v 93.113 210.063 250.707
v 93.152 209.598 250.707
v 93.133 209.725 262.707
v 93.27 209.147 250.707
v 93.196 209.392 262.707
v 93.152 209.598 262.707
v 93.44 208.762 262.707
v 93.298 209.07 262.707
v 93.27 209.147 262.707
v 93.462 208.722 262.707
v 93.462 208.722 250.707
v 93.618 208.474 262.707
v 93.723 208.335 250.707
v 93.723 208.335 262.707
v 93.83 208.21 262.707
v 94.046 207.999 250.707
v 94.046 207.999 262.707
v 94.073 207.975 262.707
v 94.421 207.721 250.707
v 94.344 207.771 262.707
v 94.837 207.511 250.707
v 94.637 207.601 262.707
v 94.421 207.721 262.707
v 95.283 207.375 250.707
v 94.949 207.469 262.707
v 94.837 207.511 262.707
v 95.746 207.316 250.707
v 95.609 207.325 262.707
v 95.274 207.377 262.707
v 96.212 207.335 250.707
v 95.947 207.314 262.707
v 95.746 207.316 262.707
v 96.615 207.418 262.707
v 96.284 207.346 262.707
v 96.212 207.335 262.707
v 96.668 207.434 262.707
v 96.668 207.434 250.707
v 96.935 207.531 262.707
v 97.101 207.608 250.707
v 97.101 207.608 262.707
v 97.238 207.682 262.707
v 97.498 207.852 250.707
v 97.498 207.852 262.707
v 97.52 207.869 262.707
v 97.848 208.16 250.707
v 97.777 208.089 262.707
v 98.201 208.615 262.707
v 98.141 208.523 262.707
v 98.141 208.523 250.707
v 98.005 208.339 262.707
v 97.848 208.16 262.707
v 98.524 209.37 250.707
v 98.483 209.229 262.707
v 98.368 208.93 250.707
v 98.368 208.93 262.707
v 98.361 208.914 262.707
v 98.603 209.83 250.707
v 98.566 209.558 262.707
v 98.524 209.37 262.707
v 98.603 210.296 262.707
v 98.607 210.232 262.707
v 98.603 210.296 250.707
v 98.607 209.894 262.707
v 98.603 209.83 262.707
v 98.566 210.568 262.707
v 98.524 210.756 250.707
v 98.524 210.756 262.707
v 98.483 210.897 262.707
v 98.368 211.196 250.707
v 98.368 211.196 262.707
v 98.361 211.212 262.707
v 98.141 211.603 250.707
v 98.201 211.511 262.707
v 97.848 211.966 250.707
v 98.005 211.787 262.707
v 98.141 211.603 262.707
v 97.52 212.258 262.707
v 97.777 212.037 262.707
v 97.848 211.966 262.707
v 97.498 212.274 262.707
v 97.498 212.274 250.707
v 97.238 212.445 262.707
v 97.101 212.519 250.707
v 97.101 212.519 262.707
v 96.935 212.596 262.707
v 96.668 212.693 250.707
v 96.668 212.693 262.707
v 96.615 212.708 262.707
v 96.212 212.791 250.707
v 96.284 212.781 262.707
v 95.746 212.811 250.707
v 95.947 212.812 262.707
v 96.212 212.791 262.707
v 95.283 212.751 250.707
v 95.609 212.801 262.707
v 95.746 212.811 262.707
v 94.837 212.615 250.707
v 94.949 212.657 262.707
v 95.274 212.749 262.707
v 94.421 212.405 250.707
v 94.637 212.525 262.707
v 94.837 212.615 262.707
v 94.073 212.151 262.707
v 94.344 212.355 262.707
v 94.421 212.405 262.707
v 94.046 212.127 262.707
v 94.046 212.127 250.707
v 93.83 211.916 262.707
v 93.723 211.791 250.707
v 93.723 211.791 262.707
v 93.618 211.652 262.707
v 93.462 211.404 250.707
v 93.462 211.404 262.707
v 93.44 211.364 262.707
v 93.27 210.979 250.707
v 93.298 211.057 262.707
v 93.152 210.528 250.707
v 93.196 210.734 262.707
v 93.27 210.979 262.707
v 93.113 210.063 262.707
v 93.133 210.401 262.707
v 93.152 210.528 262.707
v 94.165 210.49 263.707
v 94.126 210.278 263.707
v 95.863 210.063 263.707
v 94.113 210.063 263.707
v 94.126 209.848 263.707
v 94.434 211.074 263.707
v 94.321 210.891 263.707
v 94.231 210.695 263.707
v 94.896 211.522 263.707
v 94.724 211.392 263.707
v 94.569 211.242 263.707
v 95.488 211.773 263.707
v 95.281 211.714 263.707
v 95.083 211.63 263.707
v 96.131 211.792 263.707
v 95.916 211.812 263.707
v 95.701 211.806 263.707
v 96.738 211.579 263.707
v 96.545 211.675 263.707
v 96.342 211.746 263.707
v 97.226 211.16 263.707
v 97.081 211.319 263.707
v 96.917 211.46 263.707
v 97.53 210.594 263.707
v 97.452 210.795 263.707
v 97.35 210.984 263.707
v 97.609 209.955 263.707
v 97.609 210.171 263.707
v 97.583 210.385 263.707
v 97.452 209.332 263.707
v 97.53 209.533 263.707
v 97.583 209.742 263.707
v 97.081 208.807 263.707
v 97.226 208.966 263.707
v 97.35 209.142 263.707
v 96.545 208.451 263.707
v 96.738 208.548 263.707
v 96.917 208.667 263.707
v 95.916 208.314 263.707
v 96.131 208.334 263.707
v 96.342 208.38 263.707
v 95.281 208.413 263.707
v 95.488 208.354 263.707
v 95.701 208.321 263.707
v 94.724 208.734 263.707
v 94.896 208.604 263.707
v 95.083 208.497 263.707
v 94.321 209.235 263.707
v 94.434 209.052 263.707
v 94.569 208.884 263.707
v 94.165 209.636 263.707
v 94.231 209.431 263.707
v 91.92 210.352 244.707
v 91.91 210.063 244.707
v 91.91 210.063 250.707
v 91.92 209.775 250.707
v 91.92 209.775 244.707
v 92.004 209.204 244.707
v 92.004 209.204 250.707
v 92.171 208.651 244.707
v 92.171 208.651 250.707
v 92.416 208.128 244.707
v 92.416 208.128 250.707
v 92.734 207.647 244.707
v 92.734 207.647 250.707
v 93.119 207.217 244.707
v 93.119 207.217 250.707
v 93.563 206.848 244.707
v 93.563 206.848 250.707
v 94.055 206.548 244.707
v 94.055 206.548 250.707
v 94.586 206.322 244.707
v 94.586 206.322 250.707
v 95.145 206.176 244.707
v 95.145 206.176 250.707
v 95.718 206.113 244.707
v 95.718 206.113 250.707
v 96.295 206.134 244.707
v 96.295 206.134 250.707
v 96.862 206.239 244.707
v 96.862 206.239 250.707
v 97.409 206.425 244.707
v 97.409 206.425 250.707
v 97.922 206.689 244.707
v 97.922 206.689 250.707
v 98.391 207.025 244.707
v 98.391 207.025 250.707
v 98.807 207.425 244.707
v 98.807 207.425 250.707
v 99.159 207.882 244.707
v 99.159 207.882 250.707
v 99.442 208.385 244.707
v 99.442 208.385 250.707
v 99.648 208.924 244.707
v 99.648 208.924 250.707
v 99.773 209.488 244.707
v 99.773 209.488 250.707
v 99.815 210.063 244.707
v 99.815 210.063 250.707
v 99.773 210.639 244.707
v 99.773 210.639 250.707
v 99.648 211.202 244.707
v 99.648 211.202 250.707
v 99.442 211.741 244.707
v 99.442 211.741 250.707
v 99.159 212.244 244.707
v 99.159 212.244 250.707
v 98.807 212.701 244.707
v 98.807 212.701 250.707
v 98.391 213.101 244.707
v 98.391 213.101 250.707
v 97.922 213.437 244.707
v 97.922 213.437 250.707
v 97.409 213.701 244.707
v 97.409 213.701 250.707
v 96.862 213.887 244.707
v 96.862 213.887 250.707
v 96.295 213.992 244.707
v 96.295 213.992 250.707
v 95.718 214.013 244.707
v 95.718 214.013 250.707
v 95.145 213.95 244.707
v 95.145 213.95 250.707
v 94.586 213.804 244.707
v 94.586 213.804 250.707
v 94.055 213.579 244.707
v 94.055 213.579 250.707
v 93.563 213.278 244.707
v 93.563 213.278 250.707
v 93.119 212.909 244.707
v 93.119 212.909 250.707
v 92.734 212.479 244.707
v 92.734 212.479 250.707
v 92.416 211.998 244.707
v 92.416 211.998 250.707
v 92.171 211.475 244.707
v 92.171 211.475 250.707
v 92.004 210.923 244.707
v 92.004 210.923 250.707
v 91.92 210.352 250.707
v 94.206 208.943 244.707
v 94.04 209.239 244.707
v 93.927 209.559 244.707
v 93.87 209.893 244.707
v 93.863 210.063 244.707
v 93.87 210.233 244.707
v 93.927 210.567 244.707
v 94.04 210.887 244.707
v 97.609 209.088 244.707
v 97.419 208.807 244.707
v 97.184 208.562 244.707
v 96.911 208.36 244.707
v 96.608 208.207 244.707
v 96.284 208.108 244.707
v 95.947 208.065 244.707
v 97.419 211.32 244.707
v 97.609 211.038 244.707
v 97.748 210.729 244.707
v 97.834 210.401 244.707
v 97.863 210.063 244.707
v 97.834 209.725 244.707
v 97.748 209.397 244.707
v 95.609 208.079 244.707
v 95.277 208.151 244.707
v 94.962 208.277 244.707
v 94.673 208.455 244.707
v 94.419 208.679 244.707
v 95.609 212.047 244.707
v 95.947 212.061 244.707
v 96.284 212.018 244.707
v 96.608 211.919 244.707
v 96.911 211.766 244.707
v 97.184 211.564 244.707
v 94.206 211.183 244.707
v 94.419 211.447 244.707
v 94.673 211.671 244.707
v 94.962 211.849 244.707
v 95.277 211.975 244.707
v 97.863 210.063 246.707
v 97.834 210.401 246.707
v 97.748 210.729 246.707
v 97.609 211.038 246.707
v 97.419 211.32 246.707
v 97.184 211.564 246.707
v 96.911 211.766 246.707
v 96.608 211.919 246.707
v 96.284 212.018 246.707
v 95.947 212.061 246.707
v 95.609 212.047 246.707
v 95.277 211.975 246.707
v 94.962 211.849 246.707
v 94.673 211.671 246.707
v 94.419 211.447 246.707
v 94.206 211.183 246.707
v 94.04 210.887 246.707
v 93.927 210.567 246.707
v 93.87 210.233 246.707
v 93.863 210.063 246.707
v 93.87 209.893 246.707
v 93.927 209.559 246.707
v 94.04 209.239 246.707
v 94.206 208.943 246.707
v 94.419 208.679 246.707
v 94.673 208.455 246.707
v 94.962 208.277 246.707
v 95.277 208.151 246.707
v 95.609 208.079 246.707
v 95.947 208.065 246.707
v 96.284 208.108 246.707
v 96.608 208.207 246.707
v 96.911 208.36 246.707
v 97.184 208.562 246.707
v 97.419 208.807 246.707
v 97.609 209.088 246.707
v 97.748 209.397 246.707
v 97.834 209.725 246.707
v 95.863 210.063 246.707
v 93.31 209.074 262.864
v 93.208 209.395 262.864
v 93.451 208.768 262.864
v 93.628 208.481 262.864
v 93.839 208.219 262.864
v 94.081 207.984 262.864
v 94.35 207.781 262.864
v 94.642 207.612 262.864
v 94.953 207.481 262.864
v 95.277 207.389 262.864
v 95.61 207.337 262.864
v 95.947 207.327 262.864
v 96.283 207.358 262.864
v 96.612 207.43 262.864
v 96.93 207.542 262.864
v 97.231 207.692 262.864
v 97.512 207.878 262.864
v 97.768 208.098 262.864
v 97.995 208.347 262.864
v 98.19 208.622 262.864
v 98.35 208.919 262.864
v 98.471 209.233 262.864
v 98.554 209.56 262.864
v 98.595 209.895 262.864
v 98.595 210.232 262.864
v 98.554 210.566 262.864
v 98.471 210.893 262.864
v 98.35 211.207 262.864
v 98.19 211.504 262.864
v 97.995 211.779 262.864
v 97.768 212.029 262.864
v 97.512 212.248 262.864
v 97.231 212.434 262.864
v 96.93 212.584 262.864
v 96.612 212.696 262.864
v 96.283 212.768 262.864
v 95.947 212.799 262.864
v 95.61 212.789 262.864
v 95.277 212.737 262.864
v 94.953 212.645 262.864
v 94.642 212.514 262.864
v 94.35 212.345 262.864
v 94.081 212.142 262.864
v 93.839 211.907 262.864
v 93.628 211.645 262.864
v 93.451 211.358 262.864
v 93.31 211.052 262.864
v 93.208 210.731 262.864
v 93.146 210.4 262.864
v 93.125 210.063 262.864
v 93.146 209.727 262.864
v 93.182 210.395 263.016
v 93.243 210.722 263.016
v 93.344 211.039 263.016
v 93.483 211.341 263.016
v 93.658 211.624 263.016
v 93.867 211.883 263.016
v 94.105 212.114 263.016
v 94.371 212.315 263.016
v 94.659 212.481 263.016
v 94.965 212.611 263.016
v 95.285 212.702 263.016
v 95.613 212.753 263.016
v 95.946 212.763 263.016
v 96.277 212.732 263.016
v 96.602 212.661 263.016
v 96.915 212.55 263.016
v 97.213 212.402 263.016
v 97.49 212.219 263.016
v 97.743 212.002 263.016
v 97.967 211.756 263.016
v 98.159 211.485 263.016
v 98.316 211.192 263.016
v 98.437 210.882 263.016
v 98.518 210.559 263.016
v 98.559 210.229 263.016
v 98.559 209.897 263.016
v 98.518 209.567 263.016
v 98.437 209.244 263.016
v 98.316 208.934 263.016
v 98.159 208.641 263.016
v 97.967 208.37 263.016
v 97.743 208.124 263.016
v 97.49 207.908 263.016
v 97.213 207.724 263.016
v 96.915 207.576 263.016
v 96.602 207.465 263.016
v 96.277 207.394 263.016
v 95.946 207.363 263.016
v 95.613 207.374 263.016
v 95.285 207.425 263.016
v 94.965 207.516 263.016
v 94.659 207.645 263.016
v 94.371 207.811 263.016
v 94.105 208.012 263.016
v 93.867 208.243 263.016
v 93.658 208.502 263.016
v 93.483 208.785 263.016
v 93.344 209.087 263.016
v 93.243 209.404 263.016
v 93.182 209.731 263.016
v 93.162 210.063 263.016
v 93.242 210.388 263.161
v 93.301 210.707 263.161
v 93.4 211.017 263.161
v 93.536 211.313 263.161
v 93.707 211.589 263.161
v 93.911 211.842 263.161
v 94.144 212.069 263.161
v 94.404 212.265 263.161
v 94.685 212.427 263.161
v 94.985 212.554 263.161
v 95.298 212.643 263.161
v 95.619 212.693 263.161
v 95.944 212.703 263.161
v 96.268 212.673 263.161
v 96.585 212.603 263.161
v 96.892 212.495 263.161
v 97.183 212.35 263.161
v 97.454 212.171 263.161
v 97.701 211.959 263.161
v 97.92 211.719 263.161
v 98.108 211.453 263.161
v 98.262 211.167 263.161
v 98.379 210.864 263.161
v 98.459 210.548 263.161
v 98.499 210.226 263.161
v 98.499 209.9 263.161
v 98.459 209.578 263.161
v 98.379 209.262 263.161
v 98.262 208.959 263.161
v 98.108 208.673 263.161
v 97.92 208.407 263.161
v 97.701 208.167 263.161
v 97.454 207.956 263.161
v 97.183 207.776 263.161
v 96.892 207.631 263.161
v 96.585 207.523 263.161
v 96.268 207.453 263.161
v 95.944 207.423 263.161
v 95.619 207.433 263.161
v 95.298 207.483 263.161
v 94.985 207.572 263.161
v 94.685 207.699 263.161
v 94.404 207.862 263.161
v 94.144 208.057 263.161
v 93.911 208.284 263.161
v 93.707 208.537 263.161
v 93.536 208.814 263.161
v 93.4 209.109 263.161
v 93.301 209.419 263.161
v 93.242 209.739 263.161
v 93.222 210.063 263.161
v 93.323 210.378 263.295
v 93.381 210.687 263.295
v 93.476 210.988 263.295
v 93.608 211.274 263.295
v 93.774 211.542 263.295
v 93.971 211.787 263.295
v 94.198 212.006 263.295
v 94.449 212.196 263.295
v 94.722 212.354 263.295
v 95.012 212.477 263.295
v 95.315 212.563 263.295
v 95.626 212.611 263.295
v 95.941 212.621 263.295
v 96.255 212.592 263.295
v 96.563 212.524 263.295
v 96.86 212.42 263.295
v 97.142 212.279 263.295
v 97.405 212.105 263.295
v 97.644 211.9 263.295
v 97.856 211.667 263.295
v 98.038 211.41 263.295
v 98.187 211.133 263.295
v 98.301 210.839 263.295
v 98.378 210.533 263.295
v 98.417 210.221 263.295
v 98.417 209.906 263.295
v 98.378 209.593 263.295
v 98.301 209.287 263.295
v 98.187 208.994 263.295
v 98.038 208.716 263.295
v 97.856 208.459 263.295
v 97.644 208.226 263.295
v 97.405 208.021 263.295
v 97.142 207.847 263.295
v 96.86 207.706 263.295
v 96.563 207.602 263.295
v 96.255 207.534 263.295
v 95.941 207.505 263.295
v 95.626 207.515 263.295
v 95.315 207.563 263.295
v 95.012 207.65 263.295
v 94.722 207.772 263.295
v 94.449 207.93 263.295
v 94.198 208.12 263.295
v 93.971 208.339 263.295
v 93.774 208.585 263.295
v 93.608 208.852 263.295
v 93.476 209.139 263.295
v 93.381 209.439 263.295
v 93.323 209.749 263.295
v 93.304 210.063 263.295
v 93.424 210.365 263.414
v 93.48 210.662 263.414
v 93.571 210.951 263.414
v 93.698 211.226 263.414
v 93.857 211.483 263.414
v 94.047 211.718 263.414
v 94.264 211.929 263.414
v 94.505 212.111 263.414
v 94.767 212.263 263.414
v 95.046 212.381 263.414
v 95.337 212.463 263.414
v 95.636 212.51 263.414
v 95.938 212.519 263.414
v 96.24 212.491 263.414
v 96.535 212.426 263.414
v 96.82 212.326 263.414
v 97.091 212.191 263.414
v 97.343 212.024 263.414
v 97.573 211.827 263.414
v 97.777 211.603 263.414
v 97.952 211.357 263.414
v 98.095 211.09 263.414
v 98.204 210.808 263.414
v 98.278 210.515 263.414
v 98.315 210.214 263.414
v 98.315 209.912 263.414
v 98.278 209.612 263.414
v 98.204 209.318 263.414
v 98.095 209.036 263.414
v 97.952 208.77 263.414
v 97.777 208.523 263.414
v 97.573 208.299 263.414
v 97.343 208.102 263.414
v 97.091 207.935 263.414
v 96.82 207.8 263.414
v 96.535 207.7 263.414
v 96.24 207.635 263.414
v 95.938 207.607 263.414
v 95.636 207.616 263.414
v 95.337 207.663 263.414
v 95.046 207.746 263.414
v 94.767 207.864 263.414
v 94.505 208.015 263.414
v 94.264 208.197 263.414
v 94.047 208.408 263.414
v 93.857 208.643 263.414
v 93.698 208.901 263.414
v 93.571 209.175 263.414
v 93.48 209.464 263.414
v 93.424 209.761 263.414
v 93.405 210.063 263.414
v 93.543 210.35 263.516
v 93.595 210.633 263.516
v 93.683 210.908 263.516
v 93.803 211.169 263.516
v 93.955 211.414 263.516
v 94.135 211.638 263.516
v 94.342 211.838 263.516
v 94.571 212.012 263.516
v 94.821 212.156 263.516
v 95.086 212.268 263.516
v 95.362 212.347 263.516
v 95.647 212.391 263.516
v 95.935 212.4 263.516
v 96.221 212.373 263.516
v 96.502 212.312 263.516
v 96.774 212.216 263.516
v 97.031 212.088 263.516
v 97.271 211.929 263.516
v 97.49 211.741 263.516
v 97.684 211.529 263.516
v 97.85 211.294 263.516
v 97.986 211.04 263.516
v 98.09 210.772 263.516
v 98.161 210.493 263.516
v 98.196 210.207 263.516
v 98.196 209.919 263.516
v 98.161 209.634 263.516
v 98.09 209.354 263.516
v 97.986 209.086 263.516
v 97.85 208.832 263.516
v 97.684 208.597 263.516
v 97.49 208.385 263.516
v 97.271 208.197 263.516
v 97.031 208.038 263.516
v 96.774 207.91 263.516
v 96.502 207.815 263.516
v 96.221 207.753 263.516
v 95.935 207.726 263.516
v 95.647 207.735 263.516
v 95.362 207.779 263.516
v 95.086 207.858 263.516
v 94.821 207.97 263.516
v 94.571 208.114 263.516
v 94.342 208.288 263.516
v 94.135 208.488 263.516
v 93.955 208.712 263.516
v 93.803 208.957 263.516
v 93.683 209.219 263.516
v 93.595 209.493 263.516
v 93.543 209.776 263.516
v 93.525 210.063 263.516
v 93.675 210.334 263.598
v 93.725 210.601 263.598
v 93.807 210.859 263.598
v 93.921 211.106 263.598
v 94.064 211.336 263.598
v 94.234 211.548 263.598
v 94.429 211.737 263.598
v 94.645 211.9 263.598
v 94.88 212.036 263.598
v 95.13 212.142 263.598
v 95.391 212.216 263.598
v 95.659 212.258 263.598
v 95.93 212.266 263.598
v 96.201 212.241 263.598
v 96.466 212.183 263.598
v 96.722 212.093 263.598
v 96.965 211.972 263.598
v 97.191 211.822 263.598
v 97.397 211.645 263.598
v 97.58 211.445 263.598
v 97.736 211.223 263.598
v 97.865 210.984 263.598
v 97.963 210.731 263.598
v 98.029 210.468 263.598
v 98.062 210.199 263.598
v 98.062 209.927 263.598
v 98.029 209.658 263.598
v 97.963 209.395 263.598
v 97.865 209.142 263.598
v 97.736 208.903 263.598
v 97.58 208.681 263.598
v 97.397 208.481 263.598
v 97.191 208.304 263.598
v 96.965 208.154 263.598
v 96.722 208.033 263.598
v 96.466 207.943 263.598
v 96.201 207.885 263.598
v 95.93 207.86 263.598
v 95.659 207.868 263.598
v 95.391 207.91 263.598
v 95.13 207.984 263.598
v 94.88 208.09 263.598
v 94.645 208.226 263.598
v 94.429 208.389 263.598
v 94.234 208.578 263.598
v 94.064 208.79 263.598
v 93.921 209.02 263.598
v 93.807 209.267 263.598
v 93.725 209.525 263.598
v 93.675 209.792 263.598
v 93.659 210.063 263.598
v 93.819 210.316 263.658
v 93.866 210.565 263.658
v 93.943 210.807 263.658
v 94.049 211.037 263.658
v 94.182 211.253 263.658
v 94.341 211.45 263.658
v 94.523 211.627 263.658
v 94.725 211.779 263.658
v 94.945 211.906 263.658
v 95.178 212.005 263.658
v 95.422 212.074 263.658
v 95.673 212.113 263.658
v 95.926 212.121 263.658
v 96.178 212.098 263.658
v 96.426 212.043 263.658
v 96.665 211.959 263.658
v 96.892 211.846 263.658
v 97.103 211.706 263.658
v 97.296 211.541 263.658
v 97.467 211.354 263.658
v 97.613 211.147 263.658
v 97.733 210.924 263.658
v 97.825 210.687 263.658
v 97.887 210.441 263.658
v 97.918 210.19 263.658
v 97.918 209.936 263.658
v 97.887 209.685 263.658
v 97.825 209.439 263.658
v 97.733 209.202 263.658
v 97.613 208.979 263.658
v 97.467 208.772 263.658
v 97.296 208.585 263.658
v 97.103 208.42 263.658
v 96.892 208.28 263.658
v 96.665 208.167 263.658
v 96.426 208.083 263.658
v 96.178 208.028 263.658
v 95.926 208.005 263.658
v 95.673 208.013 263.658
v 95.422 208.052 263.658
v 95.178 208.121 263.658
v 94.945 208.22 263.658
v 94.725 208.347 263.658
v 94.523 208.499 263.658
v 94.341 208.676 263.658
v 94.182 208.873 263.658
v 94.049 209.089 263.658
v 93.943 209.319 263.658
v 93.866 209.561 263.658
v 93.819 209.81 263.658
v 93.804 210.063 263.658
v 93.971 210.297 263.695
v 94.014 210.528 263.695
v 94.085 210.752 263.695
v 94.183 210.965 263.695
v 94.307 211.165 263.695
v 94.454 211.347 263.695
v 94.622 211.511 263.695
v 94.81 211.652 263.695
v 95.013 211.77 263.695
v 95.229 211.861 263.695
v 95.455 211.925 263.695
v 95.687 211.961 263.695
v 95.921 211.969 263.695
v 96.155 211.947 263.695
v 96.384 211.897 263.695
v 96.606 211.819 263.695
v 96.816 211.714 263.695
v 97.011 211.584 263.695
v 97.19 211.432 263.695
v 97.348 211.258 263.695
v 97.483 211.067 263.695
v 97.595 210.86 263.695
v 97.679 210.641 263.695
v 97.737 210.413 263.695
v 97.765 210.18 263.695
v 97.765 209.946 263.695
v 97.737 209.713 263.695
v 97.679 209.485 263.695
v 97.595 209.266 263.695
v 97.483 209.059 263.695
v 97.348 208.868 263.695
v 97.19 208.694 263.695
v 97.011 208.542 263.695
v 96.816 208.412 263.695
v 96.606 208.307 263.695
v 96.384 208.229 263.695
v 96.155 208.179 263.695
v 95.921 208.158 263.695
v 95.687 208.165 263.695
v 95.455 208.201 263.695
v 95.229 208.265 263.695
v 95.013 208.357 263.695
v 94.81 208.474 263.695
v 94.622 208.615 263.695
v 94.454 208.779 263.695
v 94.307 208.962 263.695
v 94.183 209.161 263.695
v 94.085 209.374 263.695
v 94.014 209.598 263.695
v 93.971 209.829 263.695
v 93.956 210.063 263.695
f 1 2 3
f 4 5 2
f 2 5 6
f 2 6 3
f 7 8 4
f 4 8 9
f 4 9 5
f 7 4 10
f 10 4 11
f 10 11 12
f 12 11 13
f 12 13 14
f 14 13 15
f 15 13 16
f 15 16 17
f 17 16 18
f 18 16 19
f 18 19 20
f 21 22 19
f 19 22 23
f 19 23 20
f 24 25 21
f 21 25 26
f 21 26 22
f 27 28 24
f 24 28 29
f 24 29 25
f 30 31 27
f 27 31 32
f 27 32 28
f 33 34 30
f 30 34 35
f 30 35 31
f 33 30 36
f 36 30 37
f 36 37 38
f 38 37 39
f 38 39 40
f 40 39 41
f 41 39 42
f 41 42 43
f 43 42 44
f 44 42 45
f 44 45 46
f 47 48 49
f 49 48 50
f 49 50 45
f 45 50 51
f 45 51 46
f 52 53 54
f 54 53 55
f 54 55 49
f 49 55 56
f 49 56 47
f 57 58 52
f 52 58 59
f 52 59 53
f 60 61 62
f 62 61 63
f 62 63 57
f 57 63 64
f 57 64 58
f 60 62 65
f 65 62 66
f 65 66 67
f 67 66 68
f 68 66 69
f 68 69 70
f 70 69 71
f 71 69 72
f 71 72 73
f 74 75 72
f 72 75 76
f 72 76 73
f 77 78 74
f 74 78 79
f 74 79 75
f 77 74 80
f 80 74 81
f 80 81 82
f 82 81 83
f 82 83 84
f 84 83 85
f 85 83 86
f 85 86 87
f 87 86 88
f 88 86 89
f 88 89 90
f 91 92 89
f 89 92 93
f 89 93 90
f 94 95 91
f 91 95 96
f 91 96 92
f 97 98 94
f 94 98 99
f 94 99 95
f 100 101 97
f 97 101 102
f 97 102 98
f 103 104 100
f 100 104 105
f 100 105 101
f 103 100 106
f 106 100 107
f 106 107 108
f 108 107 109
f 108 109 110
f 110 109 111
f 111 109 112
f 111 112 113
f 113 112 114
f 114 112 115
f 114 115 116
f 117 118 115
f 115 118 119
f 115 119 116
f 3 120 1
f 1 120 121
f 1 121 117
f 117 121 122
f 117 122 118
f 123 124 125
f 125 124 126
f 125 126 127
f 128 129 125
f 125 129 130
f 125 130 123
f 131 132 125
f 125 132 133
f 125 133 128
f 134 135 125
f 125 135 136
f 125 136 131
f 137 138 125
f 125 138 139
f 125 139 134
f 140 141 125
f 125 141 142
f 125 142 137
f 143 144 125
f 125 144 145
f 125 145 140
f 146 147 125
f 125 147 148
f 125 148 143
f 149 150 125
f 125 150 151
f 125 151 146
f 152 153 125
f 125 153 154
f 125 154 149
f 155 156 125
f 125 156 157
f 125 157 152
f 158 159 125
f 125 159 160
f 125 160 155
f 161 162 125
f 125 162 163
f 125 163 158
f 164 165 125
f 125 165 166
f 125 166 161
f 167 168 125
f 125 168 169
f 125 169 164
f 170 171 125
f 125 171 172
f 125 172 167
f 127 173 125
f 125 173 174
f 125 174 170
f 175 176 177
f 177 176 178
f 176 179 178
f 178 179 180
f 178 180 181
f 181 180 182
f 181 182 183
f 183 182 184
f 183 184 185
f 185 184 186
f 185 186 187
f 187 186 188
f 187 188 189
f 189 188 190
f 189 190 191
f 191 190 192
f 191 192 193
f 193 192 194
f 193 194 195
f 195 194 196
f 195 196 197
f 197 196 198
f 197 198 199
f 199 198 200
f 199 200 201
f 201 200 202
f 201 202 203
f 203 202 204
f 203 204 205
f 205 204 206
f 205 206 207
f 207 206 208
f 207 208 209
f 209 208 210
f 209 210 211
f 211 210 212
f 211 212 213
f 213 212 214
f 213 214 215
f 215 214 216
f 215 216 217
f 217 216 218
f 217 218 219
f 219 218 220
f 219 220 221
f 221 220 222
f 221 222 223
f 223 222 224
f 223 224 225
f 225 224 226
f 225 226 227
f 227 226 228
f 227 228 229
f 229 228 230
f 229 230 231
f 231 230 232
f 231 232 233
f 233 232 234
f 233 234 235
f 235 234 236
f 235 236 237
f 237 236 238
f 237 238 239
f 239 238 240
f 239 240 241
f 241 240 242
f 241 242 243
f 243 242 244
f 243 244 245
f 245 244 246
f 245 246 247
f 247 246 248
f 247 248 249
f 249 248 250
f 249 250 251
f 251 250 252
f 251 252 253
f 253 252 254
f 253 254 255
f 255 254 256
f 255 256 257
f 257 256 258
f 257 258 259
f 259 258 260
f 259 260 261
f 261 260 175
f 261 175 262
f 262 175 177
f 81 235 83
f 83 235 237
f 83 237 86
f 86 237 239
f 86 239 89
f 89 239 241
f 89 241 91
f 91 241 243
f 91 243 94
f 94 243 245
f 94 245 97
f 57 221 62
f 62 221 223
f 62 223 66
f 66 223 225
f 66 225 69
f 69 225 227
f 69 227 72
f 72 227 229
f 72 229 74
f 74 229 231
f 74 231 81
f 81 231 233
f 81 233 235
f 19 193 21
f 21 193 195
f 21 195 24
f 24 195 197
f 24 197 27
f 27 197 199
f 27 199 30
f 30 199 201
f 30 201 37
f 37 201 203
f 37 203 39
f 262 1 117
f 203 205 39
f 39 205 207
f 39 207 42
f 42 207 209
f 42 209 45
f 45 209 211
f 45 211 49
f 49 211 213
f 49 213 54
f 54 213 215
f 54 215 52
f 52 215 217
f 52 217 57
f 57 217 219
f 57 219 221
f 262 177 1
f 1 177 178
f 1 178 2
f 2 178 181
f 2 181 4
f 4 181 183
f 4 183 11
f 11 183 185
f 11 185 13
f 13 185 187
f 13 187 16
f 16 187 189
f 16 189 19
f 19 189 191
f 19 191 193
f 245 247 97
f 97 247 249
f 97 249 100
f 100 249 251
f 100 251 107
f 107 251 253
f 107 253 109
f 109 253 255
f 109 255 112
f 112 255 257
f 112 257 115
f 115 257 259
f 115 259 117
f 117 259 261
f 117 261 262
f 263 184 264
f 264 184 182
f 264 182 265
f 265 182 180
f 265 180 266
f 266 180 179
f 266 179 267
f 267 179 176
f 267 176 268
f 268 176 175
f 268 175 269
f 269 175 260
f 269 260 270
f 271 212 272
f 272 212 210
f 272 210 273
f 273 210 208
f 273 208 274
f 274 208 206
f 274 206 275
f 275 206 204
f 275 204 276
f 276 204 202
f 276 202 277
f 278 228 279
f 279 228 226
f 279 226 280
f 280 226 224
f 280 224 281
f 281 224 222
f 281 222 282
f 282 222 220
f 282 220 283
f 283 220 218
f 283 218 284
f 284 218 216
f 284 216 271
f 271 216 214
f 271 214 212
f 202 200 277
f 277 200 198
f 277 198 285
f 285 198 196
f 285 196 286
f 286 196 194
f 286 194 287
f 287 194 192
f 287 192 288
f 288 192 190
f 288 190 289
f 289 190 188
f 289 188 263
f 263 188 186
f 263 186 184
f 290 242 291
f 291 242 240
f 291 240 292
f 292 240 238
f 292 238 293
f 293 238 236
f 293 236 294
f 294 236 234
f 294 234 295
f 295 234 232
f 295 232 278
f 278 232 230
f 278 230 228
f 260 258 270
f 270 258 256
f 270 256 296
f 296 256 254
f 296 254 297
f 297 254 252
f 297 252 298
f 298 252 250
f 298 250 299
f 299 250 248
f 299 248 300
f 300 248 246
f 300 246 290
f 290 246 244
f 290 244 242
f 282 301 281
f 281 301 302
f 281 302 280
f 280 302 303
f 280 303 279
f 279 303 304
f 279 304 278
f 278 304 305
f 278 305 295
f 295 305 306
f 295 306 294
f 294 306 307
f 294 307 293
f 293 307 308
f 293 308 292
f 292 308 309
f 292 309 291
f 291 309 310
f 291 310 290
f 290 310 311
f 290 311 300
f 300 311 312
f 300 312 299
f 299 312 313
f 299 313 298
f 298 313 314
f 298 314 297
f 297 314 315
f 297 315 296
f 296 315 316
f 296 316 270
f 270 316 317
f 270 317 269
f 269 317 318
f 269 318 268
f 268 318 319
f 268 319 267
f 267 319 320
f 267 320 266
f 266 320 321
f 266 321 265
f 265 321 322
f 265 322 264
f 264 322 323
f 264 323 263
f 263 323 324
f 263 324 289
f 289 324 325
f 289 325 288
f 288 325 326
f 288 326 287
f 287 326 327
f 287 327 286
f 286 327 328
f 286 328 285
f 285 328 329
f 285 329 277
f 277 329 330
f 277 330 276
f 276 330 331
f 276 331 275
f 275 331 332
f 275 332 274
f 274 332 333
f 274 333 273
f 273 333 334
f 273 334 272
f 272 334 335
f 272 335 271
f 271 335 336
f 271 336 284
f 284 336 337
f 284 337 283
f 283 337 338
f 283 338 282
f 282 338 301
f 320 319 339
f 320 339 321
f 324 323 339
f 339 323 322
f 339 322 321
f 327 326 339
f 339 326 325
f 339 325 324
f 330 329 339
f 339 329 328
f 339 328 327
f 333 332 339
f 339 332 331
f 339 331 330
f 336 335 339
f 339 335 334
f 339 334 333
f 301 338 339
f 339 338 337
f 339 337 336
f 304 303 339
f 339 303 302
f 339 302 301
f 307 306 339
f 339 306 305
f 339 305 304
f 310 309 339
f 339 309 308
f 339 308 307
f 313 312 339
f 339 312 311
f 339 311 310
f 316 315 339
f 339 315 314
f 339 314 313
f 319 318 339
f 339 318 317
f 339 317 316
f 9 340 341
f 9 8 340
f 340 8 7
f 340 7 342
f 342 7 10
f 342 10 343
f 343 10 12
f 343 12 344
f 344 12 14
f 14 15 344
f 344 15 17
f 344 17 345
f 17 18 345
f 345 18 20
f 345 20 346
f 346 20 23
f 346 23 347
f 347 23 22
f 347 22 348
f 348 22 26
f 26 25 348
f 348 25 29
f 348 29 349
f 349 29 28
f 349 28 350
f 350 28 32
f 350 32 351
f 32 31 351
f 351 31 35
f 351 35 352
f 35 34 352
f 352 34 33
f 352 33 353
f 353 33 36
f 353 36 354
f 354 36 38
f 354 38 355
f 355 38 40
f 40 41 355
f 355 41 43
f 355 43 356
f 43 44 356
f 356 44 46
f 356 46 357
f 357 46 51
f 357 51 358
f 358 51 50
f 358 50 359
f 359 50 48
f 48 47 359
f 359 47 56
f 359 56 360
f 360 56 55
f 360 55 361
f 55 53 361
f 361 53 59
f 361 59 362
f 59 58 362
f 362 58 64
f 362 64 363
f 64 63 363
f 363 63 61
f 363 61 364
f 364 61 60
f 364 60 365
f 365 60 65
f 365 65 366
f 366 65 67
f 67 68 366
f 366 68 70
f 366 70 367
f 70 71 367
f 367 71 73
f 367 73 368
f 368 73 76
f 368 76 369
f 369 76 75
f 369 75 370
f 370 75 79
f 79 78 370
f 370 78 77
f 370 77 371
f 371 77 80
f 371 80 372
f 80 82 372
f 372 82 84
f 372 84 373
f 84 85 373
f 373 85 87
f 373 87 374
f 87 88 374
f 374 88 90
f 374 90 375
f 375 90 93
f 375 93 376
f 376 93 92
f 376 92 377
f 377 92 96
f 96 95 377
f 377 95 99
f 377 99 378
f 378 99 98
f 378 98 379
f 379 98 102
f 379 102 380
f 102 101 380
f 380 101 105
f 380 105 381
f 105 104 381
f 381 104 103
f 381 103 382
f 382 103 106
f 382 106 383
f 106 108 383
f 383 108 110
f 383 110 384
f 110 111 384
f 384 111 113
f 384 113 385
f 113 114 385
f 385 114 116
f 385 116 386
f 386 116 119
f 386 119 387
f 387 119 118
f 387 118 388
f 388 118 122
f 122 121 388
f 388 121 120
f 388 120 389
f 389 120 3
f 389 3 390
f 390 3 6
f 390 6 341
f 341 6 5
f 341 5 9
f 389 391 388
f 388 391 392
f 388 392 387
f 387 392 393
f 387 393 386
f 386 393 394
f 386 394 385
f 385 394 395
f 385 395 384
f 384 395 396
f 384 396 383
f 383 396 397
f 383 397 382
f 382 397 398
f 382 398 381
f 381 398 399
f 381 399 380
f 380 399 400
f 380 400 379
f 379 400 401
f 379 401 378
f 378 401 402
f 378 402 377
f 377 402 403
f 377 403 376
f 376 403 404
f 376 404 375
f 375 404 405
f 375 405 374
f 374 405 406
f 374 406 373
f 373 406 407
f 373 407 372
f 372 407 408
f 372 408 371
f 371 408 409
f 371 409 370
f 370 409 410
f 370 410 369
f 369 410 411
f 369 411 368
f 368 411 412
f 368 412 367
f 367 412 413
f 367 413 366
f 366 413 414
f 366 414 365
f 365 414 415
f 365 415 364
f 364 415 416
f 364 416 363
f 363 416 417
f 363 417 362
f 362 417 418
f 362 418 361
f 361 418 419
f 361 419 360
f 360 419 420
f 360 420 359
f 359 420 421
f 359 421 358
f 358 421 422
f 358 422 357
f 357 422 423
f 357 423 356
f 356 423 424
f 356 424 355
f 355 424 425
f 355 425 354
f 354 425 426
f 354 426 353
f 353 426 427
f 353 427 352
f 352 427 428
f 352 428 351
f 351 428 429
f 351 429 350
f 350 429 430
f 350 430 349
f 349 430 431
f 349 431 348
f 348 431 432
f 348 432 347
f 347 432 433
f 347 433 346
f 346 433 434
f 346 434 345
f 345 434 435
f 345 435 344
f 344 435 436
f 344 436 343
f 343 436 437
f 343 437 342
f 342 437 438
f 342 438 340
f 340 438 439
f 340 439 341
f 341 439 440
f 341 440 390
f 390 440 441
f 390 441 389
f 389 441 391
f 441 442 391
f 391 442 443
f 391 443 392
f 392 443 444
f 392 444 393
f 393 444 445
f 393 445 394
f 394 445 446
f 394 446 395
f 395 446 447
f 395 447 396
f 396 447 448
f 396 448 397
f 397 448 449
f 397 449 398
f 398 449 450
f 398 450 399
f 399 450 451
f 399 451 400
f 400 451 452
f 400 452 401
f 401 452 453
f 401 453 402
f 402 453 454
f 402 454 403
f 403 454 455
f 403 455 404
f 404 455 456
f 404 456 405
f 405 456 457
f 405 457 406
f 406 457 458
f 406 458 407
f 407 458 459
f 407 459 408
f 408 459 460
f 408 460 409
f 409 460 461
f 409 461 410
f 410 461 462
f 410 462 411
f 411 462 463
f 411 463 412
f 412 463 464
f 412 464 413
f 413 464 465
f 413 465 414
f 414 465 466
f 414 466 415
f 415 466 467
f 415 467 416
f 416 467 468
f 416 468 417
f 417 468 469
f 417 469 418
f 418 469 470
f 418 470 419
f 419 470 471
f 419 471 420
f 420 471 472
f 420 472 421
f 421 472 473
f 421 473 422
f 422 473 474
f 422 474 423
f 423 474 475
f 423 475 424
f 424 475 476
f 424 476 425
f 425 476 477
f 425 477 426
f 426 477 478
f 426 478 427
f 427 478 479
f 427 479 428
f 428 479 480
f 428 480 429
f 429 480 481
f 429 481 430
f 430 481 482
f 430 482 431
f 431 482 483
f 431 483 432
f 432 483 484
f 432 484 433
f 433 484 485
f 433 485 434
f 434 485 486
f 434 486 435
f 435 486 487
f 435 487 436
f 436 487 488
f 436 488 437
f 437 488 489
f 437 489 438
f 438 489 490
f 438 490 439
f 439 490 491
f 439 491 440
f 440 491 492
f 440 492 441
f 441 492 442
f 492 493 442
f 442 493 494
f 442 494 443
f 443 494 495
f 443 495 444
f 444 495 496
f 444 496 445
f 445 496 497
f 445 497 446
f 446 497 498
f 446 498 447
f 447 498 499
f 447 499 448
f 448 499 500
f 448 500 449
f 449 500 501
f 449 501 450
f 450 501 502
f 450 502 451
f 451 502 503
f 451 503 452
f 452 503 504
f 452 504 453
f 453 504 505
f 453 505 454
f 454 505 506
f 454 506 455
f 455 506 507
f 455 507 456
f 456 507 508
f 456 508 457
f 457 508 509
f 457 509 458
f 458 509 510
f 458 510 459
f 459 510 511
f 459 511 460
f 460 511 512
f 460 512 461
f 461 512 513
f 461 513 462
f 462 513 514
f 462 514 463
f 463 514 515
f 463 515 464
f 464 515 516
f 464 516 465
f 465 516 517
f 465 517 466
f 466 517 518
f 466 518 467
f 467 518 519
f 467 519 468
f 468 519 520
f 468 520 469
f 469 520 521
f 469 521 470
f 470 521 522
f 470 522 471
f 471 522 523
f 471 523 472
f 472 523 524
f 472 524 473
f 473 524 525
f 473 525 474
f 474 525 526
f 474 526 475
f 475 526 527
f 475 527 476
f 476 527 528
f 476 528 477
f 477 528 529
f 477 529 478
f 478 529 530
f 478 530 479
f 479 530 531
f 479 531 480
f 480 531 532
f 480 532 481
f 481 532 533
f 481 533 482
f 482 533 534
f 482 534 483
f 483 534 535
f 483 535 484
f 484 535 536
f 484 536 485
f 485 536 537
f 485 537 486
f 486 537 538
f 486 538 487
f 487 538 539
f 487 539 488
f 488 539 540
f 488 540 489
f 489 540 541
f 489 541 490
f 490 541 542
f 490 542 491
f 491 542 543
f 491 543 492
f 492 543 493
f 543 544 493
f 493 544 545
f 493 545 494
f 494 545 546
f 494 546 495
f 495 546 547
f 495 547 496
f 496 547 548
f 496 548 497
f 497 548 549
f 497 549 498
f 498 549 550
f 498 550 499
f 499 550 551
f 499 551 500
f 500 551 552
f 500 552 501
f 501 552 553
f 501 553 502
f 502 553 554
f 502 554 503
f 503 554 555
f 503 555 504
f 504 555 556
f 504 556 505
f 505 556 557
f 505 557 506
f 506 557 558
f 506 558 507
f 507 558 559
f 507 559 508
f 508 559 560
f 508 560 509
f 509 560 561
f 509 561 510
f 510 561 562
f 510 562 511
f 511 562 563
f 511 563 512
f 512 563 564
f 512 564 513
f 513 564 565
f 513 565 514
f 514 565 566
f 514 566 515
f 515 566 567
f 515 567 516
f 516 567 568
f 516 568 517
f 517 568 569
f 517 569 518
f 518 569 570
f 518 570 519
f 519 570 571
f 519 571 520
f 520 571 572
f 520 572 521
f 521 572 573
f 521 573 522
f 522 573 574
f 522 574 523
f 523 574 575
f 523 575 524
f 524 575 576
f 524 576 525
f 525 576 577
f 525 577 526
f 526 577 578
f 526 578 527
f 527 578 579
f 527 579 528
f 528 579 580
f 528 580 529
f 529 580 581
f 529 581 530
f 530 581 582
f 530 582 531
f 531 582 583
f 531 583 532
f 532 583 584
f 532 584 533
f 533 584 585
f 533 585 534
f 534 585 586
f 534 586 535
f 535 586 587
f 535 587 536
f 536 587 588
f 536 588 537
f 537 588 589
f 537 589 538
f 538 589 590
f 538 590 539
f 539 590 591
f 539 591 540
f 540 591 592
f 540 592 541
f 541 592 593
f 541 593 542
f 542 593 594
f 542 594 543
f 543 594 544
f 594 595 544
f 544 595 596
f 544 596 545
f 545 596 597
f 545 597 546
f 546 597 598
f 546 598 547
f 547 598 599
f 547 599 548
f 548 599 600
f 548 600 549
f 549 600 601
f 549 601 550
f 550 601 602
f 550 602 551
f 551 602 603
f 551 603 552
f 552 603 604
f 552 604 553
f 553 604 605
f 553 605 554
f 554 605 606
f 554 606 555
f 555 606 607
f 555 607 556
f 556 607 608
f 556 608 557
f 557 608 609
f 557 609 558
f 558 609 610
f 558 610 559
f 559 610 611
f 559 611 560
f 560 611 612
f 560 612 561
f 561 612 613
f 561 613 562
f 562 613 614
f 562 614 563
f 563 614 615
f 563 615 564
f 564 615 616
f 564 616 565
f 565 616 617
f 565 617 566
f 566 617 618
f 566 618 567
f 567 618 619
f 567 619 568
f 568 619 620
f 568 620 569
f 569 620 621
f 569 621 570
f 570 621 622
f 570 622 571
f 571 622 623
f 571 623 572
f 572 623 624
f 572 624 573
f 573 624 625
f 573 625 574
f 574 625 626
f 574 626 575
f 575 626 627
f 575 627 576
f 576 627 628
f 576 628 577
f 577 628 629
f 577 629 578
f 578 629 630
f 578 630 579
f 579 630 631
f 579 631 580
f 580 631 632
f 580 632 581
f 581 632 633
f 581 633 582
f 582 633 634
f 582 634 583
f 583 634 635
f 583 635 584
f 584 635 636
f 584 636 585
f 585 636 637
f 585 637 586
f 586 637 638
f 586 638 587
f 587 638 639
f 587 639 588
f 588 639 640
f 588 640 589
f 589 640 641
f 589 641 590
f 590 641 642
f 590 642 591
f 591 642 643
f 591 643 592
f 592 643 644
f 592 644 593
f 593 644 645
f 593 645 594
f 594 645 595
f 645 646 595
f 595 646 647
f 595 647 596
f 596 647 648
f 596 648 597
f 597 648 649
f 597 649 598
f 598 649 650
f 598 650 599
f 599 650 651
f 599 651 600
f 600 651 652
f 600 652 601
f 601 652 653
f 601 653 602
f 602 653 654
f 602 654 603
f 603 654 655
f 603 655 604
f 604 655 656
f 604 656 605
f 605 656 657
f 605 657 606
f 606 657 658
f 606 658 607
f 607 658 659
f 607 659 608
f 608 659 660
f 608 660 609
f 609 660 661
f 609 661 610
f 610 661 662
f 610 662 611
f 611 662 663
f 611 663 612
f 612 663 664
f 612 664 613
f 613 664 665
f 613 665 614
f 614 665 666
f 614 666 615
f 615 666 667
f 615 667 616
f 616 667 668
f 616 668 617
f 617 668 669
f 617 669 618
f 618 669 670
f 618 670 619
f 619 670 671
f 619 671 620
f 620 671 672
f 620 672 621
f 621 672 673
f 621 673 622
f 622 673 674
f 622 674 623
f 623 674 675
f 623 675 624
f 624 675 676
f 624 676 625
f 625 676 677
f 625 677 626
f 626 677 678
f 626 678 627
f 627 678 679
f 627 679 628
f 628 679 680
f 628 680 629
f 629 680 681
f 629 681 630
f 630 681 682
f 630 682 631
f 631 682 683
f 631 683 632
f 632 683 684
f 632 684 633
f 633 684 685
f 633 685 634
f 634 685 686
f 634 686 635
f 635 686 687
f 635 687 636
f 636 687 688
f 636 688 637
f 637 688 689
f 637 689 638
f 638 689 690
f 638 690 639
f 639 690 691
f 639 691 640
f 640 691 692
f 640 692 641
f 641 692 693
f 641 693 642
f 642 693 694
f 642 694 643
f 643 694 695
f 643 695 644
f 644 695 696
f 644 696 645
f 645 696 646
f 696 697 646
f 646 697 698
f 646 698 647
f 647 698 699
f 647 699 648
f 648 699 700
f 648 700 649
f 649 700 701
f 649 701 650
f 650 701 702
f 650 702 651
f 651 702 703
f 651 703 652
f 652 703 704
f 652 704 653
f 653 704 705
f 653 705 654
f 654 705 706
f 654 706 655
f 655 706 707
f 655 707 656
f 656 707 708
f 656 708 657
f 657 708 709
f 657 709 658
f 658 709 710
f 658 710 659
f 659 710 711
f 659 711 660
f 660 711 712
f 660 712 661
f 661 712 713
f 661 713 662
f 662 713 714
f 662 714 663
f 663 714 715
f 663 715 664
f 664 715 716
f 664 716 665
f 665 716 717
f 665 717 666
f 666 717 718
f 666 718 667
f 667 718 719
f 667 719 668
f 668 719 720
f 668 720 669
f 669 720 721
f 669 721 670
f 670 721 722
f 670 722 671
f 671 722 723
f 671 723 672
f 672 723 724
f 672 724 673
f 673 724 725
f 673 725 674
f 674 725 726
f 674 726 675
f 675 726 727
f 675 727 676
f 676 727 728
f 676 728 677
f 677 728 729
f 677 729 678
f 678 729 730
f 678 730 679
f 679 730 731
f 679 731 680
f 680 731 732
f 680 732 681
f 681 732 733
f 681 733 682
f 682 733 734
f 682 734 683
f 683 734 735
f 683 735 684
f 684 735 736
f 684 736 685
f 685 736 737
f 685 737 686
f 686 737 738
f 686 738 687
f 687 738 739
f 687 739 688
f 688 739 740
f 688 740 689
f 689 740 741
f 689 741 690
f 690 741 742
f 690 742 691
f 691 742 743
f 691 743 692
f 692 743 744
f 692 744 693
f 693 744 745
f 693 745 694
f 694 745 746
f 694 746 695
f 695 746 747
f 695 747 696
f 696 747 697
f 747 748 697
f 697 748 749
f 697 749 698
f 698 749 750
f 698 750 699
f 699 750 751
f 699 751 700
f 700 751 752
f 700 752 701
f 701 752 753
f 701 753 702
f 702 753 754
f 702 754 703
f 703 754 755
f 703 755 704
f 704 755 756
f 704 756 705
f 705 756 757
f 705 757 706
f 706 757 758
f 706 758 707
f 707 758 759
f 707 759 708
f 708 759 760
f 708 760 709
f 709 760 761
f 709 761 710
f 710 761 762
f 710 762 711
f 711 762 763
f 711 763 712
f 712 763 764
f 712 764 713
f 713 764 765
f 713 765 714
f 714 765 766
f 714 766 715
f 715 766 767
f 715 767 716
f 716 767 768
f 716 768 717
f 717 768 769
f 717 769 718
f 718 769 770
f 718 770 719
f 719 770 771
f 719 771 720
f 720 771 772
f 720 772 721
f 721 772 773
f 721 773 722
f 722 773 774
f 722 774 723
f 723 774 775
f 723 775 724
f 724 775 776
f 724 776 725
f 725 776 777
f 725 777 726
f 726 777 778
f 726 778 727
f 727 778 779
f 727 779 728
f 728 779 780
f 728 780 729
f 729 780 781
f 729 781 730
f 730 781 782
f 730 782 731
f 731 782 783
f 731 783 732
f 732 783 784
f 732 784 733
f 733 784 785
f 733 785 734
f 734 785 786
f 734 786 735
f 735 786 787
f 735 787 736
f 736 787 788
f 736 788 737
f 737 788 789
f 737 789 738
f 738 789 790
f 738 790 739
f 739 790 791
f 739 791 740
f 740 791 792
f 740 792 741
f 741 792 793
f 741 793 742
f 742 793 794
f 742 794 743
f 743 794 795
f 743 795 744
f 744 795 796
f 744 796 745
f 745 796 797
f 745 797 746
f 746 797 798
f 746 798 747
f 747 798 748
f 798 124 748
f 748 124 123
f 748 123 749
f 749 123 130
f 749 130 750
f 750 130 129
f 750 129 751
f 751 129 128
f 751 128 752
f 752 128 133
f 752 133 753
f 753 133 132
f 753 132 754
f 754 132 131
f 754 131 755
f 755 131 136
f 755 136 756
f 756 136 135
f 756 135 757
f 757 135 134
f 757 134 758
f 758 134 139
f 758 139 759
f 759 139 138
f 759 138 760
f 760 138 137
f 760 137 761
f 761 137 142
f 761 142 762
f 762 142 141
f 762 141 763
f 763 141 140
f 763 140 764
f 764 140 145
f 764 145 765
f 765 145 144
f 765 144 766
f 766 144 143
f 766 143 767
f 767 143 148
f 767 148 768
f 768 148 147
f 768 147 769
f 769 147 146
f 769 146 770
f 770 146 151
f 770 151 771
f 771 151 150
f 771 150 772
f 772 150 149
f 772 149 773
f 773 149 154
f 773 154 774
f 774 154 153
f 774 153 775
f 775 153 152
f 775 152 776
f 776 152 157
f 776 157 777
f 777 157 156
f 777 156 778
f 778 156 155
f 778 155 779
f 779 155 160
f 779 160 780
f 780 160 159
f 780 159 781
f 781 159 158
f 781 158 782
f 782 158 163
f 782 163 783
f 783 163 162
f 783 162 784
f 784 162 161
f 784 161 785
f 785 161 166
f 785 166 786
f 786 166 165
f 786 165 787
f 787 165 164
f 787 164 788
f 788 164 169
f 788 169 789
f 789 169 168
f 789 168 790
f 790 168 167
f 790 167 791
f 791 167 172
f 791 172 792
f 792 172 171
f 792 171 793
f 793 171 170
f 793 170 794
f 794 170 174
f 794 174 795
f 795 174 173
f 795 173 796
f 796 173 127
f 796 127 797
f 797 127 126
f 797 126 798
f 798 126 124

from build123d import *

# Parameters (mm, degrees)
SKETCH1_R                = 2.75
BOSS_EXTRUDE1_DEPTH      = 5
BOSS_EXTRUDE1_DEPTH_BACK = 8
SKETCH2_R                = 3.952847075
BOSS_EXTRUDE2_DEPTH      = 4
SKETCH3_R                = 3.952847075
SKETCH3_R_2              = 2
BOSS_EXTRUDE3_DEPTH      = 2
FILLET1_R                = 1


with BuildPart() as part:
    # Sketch1 → Boss-Extrude1 (new body, two sides)
    with BuildSketch(Plane(origin=(0, 0, 255.707141652), x_dir=(-1, 0, 0), z_dir=(0, 0, -1))) as boss_extrude1_sk:
        with Locations((-95.862602529, 210.063080558)):
            Circle(SKETCH1_R)
    extrude(amount=BOSS_EXTRUDE1_DEPTH)
    extrude(boss_extrude1_sk.sketch, amount=-BOSS_EXTRUDE1_DEPTH_BACK)

    # Sketch2 → Boss-Extrude2 (add)
    with BuildSketch(Plane(origin=(0, 0, 250.707141652), x_dir=(-1, 0, 0), z_dir=(0, 0, -1))):
        with Locations((-95.862602529, 210.063080558)):
            Circle(SKETCH2_R)
    extrude(amount=BOSS_EXTRUDE2_DEPTH)

    # Sketch3 → Boss-Extrude3 (add)
    with BuildSketch(Plane(origin=(0, 0, 246.707141652), x_dir=(-1, 0, 0), z_dir=(0, 0, -1))):
        with Locations((-95.862602529, 210.063080558)):
            Circle(SKETCH3_R)
        with Locations((-95.862602529, 210.063080558)):
            Circle(SKETCH3_R_2, mode=Mode.SUBTRACT)
    extrude(amount=BOSS_EXTRUDE3_DEPTH)

    # Fillet1
    fillet1_edges = [part.edges().sort_by_distance(p)[0] for p in [
        (98.612602529, 210.063080558, 263.707141652),
    ]]
    fillet(fillet1_edges, radius=FILLET1_R)


solid = part.part
